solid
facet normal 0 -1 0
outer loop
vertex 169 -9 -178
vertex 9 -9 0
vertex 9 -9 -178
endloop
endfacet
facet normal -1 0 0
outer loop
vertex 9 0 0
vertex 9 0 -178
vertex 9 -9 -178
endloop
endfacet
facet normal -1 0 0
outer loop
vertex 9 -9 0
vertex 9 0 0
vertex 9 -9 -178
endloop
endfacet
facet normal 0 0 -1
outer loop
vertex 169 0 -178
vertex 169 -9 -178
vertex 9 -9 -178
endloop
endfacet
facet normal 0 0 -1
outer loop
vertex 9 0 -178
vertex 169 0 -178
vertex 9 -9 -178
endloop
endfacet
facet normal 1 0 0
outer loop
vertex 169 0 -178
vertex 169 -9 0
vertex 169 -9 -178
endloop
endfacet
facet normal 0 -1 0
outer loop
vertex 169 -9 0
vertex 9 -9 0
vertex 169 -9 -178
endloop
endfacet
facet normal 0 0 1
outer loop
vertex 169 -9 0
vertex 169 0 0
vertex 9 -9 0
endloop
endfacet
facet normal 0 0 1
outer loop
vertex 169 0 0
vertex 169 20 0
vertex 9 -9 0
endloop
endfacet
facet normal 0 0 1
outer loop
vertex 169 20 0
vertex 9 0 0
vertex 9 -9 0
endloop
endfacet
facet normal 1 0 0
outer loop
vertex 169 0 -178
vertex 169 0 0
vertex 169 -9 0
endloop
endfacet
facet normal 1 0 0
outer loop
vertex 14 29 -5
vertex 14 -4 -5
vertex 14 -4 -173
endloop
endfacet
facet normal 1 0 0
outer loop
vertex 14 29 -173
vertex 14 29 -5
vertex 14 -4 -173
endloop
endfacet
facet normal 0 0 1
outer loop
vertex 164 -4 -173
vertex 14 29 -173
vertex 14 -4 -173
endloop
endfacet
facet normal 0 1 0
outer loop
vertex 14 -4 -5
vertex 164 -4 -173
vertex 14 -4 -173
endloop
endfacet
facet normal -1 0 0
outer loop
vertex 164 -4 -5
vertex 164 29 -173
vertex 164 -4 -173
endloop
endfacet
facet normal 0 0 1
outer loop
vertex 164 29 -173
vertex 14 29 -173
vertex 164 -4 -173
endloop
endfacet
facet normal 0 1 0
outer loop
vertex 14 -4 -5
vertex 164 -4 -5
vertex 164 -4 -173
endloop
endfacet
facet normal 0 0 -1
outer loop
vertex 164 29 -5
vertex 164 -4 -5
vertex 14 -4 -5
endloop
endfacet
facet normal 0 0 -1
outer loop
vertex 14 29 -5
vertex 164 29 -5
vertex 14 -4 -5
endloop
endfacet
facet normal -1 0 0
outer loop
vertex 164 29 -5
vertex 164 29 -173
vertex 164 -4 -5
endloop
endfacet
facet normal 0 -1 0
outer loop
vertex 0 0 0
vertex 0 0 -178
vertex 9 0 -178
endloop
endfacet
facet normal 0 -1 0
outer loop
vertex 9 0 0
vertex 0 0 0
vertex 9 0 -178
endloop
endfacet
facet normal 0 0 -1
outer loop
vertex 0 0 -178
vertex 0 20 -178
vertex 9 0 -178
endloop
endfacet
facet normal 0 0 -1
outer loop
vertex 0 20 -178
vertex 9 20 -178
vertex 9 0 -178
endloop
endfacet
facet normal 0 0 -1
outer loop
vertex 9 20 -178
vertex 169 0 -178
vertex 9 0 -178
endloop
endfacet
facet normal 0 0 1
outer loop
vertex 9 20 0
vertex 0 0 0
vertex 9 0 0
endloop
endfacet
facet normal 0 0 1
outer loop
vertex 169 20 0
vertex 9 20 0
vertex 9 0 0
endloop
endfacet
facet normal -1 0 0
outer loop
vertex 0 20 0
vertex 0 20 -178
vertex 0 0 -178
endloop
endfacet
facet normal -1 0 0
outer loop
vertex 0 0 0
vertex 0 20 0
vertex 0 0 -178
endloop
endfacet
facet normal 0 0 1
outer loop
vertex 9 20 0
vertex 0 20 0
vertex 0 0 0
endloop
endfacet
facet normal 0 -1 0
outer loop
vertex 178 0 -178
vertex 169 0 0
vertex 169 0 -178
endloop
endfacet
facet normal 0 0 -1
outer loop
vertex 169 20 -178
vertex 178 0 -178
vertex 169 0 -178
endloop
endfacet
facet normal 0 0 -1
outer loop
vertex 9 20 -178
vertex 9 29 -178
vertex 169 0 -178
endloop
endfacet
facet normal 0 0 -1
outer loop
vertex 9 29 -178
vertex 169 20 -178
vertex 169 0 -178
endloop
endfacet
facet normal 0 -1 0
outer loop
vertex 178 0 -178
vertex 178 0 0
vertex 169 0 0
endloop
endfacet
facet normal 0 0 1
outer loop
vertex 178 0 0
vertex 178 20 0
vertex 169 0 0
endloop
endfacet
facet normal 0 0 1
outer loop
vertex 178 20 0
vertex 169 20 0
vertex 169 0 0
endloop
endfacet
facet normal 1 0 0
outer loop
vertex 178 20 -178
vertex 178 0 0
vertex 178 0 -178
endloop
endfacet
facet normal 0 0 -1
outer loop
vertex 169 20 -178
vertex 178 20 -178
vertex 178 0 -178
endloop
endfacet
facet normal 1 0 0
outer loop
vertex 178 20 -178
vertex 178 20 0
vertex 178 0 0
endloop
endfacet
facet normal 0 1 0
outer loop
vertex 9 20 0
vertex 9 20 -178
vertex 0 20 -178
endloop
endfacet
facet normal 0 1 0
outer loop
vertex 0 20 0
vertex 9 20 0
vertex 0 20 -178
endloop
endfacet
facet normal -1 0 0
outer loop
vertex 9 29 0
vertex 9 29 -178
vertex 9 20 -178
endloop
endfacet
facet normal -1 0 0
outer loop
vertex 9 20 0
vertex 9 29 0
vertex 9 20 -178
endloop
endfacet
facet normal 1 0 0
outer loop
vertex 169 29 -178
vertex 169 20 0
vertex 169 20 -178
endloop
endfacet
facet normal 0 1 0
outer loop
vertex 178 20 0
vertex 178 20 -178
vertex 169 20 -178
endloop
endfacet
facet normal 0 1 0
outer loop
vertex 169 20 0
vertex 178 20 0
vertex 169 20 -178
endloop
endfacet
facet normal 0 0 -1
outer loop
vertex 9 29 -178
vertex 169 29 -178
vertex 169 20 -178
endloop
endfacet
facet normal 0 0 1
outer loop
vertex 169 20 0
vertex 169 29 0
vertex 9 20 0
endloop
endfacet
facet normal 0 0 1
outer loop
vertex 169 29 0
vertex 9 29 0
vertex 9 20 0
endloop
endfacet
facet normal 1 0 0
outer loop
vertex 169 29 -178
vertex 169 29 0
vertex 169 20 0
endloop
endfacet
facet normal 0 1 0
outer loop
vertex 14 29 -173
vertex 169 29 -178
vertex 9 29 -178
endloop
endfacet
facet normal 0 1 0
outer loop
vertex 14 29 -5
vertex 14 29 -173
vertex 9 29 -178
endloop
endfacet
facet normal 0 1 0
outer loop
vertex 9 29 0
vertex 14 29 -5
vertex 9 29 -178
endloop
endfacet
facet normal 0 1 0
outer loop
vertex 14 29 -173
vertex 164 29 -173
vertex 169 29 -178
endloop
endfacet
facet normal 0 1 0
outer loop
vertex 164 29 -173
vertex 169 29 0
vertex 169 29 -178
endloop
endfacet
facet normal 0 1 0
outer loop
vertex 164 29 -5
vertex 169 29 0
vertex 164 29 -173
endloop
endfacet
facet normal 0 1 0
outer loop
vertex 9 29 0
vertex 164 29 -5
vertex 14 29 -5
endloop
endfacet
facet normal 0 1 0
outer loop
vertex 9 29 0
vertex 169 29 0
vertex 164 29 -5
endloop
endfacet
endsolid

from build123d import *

# Parameters (mm, degrees)
BOSS_EXTRUDE1_DEPTH = 178
SKETCH2_W           = 150
SKETCH2_H           = 168
CUT_EXTRUDE1_DEPTH  = 33


with BuildPart() as part:
    # Sketch1 → Boss-Extrude1 (new body)
    with BuildSketch(Plane.XY):
        Polygon((169, -9), (9, -9), (9, 0), (0, 0), (0, 20), (9, 20), (9, 29), (169, 29), (169, 20), (178, 20), (178, 0), (169, 0), align=None)
    extrude(amount=-BOSS_EXTRUDE1_DEPTH)

    # Sketch2 → Cut-Extrude1 (cut)
    with BuildSketch(Plane(origin=(0, 29, 0), x_dir=(1, 0, 0), z_dir=(0, 1, 0))):
        with Locations((89, 89)):
            Rectangle(SKETCH2_W, SKETCH2_H)
    extrude(amount=-CUT_EXTRUDE1_DEPTH, mode=Mode.SUBTRACT)


solid = part.part
